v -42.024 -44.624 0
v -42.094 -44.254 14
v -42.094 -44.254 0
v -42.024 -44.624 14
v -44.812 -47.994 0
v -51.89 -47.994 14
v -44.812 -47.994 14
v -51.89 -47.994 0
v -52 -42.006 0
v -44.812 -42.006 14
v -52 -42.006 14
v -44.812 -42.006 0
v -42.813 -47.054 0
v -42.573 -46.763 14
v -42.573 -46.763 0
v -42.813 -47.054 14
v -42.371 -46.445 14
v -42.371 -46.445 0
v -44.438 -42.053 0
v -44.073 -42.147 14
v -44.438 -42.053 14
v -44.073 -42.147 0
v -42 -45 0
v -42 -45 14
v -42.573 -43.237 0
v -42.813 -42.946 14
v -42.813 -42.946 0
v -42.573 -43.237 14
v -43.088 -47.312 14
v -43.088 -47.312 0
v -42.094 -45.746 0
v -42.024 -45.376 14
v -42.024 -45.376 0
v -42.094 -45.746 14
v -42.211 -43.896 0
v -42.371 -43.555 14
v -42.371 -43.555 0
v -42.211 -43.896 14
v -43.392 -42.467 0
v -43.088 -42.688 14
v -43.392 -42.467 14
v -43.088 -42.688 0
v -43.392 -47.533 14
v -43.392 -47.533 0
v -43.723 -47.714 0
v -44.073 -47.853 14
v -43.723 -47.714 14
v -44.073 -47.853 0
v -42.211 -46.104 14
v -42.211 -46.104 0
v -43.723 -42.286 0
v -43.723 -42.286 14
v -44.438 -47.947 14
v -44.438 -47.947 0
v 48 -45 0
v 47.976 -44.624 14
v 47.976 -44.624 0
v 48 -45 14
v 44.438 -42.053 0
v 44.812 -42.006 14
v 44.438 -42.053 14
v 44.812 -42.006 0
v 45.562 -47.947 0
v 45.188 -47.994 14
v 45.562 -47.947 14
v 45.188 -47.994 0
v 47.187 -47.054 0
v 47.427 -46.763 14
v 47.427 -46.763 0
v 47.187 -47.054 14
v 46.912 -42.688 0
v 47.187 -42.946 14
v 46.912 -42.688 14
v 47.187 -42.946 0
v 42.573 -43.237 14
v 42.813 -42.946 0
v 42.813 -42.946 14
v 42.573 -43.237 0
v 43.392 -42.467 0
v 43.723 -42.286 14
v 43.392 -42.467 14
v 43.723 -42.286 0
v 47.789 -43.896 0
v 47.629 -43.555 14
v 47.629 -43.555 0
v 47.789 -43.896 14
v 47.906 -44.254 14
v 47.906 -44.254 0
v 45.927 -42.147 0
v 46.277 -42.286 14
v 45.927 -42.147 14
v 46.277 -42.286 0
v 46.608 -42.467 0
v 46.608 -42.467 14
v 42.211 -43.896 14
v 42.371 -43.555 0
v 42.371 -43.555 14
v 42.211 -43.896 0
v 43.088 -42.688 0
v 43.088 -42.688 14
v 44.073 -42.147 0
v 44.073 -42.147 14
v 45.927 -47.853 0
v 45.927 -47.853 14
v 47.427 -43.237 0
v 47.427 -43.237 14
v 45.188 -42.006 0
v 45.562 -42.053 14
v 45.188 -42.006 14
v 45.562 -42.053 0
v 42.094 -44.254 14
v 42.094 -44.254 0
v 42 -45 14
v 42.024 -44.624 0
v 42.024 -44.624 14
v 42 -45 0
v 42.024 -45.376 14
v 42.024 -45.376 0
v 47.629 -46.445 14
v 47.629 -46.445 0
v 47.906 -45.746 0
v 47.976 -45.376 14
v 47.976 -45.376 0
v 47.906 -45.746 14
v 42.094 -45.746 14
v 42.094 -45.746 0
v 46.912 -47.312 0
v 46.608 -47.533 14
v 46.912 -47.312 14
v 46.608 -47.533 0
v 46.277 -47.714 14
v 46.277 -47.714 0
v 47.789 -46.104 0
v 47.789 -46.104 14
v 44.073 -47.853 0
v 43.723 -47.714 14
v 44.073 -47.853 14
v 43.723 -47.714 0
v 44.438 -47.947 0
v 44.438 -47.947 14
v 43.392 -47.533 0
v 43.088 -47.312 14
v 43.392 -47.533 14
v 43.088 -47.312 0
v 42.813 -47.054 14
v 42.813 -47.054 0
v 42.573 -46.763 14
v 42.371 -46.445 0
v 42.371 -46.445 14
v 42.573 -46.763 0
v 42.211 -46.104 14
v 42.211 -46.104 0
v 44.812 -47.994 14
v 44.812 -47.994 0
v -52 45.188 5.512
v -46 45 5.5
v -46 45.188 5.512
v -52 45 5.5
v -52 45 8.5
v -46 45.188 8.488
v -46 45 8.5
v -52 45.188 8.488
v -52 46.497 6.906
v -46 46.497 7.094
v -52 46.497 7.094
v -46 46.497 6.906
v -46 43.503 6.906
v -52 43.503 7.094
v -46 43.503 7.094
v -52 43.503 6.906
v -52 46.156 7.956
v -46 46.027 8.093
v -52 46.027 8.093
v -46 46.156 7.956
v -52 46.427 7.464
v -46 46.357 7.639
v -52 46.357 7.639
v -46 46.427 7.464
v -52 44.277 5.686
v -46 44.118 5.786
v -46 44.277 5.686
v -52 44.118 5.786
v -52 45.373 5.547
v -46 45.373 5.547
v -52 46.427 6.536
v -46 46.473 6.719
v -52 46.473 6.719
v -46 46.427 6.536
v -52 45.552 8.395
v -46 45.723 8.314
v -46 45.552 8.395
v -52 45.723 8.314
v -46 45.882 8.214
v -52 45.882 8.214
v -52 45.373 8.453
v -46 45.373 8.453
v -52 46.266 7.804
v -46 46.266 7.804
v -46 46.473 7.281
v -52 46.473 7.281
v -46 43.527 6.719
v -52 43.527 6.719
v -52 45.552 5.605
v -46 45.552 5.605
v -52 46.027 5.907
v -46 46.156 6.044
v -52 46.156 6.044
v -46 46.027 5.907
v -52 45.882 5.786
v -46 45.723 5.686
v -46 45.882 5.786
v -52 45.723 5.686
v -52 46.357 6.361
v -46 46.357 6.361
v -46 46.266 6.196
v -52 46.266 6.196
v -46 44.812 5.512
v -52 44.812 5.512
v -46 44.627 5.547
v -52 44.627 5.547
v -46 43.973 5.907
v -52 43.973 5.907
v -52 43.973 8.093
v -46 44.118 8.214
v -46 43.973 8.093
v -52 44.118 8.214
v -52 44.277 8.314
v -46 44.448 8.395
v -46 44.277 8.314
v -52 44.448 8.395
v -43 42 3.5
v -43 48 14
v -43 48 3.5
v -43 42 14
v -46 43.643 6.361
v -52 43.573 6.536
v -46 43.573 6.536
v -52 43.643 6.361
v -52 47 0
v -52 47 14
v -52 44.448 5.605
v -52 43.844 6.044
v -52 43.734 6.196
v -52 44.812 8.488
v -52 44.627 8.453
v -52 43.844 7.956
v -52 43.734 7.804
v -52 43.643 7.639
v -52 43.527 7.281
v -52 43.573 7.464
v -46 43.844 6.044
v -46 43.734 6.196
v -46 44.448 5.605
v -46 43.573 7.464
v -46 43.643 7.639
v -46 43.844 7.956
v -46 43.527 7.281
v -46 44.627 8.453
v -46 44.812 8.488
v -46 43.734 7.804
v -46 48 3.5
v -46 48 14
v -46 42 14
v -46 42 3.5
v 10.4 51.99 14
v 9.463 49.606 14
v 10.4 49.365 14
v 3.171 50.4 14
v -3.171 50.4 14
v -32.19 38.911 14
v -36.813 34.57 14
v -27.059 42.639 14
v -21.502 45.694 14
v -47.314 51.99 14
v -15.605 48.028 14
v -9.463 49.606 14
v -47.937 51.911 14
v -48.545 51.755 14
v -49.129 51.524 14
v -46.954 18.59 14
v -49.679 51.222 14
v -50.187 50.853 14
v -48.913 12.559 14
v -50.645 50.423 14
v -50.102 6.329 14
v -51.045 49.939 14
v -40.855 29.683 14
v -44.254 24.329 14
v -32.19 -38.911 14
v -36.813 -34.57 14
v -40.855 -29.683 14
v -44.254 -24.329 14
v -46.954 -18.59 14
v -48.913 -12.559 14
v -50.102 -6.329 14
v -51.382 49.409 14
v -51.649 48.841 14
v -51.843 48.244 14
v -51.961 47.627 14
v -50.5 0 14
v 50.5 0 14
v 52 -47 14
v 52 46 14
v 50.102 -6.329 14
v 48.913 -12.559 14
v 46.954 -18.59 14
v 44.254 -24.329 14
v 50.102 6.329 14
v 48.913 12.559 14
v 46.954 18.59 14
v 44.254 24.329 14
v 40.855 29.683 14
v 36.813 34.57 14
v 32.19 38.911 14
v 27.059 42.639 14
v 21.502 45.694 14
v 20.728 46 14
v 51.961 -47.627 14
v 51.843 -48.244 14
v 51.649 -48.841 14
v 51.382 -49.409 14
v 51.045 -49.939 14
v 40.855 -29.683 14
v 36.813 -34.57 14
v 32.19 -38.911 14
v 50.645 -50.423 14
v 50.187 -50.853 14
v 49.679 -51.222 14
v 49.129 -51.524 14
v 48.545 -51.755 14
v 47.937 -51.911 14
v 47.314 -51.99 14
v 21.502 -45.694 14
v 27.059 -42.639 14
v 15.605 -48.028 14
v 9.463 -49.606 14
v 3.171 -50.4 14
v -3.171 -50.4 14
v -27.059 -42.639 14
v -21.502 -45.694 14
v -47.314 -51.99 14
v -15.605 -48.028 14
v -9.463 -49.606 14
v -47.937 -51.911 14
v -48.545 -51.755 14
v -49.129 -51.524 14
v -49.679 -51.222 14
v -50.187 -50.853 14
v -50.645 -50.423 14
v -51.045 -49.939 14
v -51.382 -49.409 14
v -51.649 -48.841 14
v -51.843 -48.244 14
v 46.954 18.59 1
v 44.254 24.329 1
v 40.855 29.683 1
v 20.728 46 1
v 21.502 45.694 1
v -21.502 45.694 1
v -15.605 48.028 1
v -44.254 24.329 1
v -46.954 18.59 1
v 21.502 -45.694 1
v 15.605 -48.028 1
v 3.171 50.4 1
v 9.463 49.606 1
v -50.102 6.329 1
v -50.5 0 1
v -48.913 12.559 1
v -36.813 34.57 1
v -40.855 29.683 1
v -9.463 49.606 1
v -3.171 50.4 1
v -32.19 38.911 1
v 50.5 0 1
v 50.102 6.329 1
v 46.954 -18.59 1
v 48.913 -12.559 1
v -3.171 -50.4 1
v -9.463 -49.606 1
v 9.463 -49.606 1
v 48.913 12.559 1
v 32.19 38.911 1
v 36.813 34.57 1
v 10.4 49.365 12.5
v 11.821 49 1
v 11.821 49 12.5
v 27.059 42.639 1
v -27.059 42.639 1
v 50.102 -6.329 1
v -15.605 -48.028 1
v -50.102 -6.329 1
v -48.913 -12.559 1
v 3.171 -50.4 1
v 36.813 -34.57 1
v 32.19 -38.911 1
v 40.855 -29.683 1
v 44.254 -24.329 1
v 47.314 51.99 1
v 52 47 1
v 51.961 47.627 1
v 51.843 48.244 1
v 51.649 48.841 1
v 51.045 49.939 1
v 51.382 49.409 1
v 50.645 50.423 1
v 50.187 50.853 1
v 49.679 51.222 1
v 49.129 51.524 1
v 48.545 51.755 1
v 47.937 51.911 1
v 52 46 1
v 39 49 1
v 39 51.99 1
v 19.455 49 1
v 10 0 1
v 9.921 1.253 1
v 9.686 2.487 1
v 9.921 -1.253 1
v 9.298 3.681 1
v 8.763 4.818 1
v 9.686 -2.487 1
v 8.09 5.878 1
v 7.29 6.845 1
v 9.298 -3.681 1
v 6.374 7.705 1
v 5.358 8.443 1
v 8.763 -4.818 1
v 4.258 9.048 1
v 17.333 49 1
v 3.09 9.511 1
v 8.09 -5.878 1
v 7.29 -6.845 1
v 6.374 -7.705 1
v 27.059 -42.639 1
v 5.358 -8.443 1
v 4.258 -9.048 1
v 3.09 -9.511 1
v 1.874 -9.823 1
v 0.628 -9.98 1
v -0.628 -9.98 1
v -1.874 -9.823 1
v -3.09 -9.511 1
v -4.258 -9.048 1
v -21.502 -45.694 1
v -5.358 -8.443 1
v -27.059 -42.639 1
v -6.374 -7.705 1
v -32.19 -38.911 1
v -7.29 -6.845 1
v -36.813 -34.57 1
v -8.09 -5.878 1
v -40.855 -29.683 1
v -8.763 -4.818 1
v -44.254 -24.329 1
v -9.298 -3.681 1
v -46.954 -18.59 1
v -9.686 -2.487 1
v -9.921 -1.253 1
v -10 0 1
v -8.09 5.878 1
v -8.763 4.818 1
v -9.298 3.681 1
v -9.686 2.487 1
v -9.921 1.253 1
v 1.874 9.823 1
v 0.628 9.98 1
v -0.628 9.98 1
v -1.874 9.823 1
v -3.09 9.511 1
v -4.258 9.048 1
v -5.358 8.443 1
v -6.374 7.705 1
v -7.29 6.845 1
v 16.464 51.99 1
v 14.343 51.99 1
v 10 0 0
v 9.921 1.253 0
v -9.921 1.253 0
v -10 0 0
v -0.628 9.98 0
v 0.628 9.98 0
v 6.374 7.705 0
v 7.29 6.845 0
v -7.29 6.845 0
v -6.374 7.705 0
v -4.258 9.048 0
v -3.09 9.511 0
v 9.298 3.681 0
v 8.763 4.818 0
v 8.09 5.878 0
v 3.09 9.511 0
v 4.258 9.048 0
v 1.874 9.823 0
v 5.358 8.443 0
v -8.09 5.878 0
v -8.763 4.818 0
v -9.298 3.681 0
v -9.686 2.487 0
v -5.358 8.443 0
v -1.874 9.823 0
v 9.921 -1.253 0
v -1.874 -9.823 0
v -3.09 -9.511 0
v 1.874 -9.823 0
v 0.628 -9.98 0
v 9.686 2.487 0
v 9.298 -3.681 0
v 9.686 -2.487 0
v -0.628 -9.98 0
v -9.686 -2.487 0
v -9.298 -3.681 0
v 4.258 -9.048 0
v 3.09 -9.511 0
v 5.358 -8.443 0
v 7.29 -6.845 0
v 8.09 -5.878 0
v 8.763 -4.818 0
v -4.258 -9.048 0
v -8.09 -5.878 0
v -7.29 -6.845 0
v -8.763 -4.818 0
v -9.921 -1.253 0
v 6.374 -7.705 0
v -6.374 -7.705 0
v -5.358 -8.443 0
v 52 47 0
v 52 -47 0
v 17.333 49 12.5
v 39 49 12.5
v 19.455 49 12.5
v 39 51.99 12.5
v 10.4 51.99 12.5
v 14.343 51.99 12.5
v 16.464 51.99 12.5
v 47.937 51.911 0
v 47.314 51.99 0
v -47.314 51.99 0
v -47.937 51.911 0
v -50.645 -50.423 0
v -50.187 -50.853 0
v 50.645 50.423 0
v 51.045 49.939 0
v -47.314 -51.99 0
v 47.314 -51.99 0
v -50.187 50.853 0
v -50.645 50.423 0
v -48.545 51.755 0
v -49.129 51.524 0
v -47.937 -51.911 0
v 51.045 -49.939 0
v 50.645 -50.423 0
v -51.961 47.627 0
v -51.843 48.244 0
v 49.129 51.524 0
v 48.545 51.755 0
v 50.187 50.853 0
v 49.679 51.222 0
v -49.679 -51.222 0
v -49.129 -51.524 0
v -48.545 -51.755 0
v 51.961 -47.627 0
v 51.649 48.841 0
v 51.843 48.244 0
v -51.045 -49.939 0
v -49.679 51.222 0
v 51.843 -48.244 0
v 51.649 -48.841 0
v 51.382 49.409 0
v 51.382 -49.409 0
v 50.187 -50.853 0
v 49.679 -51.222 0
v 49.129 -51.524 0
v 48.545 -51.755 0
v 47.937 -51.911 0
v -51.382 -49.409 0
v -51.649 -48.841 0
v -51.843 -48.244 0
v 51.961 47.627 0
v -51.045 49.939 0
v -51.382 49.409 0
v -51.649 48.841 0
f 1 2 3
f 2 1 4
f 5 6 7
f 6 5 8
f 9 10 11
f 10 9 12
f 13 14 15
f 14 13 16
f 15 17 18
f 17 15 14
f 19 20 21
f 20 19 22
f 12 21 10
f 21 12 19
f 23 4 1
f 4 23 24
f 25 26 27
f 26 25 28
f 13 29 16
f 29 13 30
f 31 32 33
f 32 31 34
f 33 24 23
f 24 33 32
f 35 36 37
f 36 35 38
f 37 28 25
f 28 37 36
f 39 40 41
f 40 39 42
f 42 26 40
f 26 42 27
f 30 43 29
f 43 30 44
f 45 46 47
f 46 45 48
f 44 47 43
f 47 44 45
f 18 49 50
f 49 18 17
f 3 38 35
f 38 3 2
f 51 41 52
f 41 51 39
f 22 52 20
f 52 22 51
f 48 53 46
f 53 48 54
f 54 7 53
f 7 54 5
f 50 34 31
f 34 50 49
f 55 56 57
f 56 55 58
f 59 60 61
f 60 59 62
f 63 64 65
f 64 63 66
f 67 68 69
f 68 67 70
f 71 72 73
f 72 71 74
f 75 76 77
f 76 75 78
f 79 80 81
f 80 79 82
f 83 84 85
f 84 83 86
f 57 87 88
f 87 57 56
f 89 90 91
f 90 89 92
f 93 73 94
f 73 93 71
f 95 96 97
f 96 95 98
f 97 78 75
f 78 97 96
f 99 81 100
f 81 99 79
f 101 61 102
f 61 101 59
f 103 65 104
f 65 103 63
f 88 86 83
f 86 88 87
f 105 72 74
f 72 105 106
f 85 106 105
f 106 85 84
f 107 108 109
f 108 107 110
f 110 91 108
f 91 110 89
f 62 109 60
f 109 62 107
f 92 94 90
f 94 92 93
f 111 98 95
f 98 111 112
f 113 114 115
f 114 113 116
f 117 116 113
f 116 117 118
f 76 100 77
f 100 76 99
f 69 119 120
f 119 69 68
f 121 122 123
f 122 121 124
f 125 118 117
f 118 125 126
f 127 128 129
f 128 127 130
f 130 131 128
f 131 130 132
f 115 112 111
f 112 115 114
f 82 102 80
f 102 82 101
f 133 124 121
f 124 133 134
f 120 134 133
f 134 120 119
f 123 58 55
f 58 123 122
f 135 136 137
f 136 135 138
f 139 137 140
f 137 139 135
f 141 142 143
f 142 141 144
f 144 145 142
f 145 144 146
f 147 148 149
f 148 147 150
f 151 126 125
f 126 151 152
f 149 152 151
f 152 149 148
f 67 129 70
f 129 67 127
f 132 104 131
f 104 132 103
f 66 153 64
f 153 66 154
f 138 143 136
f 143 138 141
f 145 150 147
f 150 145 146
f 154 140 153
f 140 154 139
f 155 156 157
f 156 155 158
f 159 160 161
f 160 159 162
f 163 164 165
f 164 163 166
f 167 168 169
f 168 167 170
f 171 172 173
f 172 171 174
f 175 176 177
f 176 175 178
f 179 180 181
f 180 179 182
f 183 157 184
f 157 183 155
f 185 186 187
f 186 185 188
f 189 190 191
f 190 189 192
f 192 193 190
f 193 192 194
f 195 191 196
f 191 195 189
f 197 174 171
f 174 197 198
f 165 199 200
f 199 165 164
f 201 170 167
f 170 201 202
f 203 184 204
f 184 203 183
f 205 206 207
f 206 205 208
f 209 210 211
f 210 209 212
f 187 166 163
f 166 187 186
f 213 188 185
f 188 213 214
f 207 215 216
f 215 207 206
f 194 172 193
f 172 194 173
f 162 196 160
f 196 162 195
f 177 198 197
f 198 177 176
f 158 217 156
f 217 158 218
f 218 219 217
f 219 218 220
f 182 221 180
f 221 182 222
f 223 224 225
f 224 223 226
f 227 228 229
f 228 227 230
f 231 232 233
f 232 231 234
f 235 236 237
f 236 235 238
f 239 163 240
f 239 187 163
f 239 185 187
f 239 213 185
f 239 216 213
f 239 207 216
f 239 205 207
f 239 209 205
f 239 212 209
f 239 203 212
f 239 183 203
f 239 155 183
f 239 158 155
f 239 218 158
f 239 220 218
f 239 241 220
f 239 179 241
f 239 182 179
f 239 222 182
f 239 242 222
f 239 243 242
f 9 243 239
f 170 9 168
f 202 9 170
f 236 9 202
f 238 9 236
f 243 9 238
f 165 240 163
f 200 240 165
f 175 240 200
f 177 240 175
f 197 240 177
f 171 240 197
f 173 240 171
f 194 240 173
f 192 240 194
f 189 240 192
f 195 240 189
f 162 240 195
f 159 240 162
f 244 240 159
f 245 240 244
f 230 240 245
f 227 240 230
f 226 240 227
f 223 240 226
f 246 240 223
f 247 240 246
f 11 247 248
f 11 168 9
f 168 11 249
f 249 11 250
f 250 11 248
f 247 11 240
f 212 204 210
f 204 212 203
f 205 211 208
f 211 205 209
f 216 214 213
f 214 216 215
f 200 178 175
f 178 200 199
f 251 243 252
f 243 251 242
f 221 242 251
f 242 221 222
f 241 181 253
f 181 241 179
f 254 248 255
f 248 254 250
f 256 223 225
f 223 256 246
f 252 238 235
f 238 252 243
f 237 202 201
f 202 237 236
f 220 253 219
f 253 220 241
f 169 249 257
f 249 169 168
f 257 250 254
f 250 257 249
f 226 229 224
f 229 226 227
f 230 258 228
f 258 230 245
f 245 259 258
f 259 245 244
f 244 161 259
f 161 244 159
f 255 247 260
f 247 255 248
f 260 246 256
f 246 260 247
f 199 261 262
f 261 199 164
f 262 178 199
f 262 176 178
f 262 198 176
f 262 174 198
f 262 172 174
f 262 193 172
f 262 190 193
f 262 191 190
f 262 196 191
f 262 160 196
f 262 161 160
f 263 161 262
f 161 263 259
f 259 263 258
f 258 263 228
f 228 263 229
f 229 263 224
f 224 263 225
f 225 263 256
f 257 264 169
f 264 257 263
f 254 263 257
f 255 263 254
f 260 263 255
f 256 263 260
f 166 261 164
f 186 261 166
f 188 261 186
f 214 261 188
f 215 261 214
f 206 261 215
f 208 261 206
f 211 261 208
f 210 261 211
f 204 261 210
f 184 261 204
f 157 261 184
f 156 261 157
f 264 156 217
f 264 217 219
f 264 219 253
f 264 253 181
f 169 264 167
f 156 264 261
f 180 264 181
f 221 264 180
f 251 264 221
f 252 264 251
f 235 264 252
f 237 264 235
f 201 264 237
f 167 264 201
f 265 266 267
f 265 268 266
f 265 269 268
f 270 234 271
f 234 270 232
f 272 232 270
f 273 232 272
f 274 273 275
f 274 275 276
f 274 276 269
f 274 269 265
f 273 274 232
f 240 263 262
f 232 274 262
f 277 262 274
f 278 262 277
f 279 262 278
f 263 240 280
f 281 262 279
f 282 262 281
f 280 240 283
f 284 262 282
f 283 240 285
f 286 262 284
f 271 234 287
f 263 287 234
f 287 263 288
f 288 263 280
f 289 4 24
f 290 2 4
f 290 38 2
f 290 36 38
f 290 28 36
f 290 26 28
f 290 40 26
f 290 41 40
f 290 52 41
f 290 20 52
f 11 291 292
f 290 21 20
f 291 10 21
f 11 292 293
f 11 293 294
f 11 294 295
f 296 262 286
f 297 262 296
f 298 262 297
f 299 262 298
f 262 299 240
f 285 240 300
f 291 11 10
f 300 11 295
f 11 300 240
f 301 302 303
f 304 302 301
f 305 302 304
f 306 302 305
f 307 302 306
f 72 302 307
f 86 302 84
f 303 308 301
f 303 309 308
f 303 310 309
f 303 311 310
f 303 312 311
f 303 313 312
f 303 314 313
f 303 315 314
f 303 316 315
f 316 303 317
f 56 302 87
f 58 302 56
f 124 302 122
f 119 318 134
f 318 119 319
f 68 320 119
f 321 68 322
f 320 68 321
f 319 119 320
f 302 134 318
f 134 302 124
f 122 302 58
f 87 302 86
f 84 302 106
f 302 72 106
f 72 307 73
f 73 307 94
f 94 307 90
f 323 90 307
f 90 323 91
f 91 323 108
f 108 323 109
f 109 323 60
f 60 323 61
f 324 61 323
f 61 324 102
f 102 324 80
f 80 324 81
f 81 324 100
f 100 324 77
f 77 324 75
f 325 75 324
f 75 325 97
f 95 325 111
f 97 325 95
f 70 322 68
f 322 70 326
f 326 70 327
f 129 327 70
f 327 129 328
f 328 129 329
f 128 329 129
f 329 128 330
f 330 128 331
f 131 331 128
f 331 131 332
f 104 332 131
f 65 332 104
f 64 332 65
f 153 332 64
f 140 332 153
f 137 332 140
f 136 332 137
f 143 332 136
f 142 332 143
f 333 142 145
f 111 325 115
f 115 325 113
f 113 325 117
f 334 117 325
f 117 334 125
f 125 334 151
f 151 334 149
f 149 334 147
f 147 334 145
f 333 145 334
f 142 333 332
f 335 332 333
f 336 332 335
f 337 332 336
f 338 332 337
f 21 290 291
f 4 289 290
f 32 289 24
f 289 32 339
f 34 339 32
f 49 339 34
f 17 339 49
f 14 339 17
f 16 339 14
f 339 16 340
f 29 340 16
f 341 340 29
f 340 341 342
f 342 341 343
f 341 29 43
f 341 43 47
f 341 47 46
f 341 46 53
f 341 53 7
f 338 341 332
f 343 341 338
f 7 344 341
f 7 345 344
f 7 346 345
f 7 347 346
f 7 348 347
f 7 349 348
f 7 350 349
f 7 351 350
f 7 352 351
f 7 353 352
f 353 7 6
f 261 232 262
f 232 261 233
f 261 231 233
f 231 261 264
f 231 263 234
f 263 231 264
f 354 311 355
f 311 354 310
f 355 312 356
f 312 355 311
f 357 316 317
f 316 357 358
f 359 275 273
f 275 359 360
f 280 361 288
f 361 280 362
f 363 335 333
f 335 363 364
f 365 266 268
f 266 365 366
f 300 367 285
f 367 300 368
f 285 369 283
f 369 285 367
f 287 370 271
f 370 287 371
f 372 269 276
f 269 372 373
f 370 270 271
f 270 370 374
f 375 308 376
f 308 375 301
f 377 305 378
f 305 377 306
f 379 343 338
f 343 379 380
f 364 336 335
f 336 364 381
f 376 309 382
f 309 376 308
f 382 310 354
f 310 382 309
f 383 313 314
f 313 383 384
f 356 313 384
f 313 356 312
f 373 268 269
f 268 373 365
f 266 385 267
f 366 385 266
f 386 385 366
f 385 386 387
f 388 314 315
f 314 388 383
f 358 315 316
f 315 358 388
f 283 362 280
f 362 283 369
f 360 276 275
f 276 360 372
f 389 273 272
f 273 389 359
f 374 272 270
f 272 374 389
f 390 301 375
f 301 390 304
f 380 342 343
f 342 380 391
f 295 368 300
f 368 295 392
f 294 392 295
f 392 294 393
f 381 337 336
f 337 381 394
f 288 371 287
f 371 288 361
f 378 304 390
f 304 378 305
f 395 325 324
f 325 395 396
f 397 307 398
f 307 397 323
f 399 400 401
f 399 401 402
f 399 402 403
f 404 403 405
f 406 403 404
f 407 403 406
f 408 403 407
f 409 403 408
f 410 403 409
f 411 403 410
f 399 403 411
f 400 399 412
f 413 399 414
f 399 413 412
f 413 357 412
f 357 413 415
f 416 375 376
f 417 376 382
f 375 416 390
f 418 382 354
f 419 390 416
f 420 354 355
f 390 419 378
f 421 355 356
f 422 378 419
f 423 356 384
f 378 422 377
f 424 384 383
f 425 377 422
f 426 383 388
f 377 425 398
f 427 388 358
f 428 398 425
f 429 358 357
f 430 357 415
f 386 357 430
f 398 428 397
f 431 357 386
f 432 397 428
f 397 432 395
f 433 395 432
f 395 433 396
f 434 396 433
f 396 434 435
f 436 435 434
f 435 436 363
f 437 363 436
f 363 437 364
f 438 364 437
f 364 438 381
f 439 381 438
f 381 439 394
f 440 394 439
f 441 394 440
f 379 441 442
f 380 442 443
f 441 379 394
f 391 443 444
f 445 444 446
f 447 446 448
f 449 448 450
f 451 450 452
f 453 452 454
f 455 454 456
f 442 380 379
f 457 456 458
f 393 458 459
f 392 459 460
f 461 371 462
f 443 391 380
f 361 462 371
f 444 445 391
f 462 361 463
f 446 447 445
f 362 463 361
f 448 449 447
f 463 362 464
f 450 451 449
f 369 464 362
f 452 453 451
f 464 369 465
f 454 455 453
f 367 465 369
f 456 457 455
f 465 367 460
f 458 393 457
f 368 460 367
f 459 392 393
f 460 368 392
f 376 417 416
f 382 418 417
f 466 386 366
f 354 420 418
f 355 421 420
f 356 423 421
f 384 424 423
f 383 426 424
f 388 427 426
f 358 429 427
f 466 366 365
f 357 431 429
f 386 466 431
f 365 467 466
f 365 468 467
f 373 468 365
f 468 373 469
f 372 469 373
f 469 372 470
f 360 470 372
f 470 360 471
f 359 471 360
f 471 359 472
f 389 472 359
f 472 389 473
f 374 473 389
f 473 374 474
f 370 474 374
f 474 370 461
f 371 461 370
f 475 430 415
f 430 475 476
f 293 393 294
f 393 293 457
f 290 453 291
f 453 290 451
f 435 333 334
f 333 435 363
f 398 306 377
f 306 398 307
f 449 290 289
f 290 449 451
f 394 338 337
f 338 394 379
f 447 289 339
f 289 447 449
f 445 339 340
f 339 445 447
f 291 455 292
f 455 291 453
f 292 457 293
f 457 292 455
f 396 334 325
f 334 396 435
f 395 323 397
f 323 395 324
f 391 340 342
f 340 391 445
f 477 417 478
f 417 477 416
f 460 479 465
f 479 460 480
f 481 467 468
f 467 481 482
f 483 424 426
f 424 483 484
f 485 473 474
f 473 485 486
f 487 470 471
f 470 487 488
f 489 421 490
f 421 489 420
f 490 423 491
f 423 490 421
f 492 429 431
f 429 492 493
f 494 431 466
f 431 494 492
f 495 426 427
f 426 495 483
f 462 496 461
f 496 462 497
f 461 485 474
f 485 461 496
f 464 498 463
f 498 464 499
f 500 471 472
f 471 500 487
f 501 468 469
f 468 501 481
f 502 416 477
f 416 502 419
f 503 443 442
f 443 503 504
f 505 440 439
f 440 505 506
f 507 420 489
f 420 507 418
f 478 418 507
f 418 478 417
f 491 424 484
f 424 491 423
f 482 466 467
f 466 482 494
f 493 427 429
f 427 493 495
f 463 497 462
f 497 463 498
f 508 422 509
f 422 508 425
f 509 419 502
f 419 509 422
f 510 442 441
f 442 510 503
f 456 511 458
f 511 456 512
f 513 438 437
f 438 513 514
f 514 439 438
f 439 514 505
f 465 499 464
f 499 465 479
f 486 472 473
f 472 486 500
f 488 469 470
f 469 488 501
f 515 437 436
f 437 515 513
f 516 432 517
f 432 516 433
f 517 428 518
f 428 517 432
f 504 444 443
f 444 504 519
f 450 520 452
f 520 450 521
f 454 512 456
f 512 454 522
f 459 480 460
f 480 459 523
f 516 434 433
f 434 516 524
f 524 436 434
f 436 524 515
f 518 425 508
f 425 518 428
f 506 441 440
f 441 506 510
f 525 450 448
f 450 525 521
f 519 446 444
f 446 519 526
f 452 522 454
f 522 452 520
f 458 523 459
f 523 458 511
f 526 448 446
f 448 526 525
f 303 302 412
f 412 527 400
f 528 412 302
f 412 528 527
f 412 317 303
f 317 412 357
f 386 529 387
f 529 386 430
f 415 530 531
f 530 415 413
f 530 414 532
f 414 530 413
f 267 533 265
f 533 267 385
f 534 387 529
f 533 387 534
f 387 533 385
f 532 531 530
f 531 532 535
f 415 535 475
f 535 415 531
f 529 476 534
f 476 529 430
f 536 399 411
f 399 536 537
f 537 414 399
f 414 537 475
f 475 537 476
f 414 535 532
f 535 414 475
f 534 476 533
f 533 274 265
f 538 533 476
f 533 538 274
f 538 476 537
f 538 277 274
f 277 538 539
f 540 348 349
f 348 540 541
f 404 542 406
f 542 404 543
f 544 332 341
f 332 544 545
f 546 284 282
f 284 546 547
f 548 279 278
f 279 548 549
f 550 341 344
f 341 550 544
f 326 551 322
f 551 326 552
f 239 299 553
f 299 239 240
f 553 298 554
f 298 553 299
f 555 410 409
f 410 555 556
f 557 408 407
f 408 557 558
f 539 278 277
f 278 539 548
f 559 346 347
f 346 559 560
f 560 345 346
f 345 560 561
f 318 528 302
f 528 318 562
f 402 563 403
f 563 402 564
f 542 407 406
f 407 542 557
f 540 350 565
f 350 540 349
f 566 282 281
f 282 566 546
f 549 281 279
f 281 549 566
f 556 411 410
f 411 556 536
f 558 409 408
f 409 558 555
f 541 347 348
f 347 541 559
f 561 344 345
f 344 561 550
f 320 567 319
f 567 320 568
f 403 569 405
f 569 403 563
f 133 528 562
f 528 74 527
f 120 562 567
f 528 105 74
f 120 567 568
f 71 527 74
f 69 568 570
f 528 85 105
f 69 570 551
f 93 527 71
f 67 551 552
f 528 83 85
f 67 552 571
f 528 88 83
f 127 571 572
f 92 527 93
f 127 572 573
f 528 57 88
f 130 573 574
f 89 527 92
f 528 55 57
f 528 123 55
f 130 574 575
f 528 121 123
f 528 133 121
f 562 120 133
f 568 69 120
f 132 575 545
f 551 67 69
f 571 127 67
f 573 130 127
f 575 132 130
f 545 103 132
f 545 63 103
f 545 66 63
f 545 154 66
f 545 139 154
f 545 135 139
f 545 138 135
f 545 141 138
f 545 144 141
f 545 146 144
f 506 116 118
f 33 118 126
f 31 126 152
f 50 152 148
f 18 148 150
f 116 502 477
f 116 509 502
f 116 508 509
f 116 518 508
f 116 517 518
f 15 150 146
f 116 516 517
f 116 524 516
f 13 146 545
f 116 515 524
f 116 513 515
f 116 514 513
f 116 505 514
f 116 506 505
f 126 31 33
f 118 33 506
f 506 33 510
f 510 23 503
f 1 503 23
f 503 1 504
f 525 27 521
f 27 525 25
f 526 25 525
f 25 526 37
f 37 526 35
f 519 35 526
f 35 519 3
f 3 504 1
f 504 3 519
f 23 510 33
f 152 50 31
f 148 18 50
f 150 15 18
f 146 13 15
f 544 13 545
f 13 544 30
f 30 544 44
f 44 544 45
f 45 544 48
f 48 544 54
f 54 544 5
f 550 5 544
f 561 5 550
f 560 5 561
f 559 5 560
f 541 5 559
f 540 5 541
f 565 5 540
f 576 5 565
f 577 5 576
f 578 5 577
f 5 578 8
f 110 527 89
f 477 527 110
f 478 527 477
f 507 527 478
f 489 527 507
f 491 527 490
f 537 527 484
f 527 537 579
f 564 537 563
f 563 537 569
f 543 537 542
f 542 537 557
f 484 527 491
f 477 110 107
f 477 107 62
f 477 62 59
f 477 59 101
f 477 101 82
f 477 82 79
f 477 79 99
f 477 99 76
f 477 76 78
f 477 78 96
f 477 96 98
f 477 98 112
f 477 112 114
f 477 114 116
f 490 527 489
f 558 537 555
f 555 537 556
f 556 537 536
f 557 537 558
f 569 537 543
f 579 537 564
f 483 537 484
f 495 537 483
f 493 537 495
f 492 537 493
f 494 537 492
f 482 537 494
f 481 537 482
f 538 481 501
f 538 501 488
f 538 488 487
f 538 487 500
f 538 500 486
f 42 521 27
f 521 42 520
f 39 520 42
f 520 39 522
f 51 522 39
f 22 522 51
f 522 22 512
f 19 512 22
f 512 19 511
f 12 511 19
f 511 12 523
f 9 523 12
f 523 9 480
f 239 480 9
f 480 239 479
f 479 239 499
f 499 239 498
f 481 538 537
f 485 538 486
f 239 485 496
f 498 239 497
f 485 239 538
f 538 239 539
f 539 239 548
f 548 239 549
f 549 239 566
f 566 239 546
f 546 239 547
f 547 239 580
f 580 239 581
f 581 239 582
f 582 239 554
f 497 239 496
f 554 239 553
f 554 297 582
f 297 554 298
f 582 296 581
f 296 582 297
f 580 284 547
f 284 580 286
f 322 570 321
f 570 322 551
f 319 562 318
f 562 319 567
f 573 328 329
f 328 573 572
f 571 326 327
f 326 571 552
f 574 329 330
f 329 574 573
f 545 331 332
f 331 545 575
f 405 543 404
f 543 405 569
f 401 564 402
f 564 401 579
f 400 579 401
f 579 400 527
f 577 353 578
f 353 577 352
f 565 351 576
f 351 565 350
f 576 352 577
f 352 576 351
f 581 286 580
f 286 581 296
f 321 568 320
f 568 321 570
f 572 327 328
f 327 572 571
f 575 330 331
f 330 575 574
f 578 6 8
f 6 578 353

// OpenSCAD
$fn = 50;


difference() {
	union() {
		translate(v = [0, 0, 0]) {
			rotate(a = [0, 0, 0]) {
				hull() {
					translate(v = [-47.0000000000, 47.0000000000, 0]) {
						rotate(a = [0, 0, 0]) {
							translate(v = [0, 0, 0]) {
								rotate(a = [0, 0, 0]) {
									cylinder(h = 14, r = 5);
								}
							}
						}
					}
					translate(v = [47.0000000000, 47.0000000000, 0]) {
						rotate(a = [0, 0, 0]) {
							translate(v = [0, 0, 0]) {
								rotate(a = [0, 0, 0]) {
									cylinder(h = 14, r = 5);
								}
							}
						}
					}
					translate(v = [-47.0000000000, -47.0000000000, 0]) {
						rotate(a = [0, 0, 0]) {
							translate(v = [0, 0, 0]) {
								rotate(a = [0, 0, 0]) {
									cylinder(h = 14, r = 5);
								}
							}
						}
					}
					translate(v = [47.0000000000, -47.0000000000, 0]) {
						rotate(a = [0, 0, 0]) {
							translate(v = [0, 0, 0]) {
								rotate(a = [0, 0, 0]) {
									cylinder(h = 14, r = 5);
								}
							}
						}
					}
				}
			}
		}
	}
	union() {
		translate(v = [-52.5000000000, -45.0000000000, -125]) {
			rotate(a = [0, 0, 0]) {
				hull() {
					translate(v = [7.5000000000, 0, 0]) {
						rotate(a = [0, 0, 0]) {
							translate(v = [0, 0, 0]) {
								rotate(a = [0, 0, 0]) {
									cylinder(h = 250, r = 3.0000000000);
								}
							}
						}
					}
					translate(v = [-7.5000000000, 0, 0]) {
						rotate(a = [0, 0, 0]) {
							translate(v = [0, 0, 0]) {
								rotate(a = [0, 0, 0]) {
									cylinder(h = 250, r = 3.0000000000);
								}
							}
						}
					}
				}
			}
		}
		translate(v = [45.0000000000, -45.0000000000, -125.0000000000]) {
			rotate(a = [0, 0, 0]) {
				cylinder(h = 250, r = 3.0000000000);
			}
		}
		translate(v = [-52.0000000000, 45.0000000000, 7.0000000000]) {
			rotate(a = [0, 90, 0]) {
				cylinder(h = 9, r = 1.5000000000);
			}
		}
		translate(v = [-46.0000000000, 42.0000000000, 3.5000000000]) {
			rotate(a = [0, 0, 0]) {
				cube(size = [3, 6, 10.5000000000]);
			}
		}
		translate(v = [0, 0, 1.0000000000]) {
			rotate(a = [0, 0, 0]) {
				cylinder(h = 16, r = 50.5000000000);
			}
		}
		translate(v = [0, 0, -7.0000000000]) {
			rotate(a = [0, 0, 0]) {
				cylinder(h = 14, r = 10.0000000000);
			}
		}
		translate(v = [0.0000000000, 46.0000000000, 1]) {
			rotate(a = [0, 0, 0]) {
				cube(size = [52.0000000000, 3, 16]);
			}
		}
		translate(v = [39.0000000000, 46.0000000000, 1]) {
			rotate(a = [0, 0, 0]) {
				cube(size = [13.0000000000, 6, 16]);
			}
		}
		translate(v = [10.4000000000, 46.0000000000, 12.5000000000]) {
			rotate(a = [0, 0, 0]) {
				cube(size = [41.6000000000, 6, 1.5000000000]);
			}
		}
		translate(v = [13.5833333333, 52.7500000000, 1]) {
			rotate(a = [0, 0, -45]) {
				cube(size = [7.5000000000, 1.5000000000, 16]);
			}
		}
	}
}
